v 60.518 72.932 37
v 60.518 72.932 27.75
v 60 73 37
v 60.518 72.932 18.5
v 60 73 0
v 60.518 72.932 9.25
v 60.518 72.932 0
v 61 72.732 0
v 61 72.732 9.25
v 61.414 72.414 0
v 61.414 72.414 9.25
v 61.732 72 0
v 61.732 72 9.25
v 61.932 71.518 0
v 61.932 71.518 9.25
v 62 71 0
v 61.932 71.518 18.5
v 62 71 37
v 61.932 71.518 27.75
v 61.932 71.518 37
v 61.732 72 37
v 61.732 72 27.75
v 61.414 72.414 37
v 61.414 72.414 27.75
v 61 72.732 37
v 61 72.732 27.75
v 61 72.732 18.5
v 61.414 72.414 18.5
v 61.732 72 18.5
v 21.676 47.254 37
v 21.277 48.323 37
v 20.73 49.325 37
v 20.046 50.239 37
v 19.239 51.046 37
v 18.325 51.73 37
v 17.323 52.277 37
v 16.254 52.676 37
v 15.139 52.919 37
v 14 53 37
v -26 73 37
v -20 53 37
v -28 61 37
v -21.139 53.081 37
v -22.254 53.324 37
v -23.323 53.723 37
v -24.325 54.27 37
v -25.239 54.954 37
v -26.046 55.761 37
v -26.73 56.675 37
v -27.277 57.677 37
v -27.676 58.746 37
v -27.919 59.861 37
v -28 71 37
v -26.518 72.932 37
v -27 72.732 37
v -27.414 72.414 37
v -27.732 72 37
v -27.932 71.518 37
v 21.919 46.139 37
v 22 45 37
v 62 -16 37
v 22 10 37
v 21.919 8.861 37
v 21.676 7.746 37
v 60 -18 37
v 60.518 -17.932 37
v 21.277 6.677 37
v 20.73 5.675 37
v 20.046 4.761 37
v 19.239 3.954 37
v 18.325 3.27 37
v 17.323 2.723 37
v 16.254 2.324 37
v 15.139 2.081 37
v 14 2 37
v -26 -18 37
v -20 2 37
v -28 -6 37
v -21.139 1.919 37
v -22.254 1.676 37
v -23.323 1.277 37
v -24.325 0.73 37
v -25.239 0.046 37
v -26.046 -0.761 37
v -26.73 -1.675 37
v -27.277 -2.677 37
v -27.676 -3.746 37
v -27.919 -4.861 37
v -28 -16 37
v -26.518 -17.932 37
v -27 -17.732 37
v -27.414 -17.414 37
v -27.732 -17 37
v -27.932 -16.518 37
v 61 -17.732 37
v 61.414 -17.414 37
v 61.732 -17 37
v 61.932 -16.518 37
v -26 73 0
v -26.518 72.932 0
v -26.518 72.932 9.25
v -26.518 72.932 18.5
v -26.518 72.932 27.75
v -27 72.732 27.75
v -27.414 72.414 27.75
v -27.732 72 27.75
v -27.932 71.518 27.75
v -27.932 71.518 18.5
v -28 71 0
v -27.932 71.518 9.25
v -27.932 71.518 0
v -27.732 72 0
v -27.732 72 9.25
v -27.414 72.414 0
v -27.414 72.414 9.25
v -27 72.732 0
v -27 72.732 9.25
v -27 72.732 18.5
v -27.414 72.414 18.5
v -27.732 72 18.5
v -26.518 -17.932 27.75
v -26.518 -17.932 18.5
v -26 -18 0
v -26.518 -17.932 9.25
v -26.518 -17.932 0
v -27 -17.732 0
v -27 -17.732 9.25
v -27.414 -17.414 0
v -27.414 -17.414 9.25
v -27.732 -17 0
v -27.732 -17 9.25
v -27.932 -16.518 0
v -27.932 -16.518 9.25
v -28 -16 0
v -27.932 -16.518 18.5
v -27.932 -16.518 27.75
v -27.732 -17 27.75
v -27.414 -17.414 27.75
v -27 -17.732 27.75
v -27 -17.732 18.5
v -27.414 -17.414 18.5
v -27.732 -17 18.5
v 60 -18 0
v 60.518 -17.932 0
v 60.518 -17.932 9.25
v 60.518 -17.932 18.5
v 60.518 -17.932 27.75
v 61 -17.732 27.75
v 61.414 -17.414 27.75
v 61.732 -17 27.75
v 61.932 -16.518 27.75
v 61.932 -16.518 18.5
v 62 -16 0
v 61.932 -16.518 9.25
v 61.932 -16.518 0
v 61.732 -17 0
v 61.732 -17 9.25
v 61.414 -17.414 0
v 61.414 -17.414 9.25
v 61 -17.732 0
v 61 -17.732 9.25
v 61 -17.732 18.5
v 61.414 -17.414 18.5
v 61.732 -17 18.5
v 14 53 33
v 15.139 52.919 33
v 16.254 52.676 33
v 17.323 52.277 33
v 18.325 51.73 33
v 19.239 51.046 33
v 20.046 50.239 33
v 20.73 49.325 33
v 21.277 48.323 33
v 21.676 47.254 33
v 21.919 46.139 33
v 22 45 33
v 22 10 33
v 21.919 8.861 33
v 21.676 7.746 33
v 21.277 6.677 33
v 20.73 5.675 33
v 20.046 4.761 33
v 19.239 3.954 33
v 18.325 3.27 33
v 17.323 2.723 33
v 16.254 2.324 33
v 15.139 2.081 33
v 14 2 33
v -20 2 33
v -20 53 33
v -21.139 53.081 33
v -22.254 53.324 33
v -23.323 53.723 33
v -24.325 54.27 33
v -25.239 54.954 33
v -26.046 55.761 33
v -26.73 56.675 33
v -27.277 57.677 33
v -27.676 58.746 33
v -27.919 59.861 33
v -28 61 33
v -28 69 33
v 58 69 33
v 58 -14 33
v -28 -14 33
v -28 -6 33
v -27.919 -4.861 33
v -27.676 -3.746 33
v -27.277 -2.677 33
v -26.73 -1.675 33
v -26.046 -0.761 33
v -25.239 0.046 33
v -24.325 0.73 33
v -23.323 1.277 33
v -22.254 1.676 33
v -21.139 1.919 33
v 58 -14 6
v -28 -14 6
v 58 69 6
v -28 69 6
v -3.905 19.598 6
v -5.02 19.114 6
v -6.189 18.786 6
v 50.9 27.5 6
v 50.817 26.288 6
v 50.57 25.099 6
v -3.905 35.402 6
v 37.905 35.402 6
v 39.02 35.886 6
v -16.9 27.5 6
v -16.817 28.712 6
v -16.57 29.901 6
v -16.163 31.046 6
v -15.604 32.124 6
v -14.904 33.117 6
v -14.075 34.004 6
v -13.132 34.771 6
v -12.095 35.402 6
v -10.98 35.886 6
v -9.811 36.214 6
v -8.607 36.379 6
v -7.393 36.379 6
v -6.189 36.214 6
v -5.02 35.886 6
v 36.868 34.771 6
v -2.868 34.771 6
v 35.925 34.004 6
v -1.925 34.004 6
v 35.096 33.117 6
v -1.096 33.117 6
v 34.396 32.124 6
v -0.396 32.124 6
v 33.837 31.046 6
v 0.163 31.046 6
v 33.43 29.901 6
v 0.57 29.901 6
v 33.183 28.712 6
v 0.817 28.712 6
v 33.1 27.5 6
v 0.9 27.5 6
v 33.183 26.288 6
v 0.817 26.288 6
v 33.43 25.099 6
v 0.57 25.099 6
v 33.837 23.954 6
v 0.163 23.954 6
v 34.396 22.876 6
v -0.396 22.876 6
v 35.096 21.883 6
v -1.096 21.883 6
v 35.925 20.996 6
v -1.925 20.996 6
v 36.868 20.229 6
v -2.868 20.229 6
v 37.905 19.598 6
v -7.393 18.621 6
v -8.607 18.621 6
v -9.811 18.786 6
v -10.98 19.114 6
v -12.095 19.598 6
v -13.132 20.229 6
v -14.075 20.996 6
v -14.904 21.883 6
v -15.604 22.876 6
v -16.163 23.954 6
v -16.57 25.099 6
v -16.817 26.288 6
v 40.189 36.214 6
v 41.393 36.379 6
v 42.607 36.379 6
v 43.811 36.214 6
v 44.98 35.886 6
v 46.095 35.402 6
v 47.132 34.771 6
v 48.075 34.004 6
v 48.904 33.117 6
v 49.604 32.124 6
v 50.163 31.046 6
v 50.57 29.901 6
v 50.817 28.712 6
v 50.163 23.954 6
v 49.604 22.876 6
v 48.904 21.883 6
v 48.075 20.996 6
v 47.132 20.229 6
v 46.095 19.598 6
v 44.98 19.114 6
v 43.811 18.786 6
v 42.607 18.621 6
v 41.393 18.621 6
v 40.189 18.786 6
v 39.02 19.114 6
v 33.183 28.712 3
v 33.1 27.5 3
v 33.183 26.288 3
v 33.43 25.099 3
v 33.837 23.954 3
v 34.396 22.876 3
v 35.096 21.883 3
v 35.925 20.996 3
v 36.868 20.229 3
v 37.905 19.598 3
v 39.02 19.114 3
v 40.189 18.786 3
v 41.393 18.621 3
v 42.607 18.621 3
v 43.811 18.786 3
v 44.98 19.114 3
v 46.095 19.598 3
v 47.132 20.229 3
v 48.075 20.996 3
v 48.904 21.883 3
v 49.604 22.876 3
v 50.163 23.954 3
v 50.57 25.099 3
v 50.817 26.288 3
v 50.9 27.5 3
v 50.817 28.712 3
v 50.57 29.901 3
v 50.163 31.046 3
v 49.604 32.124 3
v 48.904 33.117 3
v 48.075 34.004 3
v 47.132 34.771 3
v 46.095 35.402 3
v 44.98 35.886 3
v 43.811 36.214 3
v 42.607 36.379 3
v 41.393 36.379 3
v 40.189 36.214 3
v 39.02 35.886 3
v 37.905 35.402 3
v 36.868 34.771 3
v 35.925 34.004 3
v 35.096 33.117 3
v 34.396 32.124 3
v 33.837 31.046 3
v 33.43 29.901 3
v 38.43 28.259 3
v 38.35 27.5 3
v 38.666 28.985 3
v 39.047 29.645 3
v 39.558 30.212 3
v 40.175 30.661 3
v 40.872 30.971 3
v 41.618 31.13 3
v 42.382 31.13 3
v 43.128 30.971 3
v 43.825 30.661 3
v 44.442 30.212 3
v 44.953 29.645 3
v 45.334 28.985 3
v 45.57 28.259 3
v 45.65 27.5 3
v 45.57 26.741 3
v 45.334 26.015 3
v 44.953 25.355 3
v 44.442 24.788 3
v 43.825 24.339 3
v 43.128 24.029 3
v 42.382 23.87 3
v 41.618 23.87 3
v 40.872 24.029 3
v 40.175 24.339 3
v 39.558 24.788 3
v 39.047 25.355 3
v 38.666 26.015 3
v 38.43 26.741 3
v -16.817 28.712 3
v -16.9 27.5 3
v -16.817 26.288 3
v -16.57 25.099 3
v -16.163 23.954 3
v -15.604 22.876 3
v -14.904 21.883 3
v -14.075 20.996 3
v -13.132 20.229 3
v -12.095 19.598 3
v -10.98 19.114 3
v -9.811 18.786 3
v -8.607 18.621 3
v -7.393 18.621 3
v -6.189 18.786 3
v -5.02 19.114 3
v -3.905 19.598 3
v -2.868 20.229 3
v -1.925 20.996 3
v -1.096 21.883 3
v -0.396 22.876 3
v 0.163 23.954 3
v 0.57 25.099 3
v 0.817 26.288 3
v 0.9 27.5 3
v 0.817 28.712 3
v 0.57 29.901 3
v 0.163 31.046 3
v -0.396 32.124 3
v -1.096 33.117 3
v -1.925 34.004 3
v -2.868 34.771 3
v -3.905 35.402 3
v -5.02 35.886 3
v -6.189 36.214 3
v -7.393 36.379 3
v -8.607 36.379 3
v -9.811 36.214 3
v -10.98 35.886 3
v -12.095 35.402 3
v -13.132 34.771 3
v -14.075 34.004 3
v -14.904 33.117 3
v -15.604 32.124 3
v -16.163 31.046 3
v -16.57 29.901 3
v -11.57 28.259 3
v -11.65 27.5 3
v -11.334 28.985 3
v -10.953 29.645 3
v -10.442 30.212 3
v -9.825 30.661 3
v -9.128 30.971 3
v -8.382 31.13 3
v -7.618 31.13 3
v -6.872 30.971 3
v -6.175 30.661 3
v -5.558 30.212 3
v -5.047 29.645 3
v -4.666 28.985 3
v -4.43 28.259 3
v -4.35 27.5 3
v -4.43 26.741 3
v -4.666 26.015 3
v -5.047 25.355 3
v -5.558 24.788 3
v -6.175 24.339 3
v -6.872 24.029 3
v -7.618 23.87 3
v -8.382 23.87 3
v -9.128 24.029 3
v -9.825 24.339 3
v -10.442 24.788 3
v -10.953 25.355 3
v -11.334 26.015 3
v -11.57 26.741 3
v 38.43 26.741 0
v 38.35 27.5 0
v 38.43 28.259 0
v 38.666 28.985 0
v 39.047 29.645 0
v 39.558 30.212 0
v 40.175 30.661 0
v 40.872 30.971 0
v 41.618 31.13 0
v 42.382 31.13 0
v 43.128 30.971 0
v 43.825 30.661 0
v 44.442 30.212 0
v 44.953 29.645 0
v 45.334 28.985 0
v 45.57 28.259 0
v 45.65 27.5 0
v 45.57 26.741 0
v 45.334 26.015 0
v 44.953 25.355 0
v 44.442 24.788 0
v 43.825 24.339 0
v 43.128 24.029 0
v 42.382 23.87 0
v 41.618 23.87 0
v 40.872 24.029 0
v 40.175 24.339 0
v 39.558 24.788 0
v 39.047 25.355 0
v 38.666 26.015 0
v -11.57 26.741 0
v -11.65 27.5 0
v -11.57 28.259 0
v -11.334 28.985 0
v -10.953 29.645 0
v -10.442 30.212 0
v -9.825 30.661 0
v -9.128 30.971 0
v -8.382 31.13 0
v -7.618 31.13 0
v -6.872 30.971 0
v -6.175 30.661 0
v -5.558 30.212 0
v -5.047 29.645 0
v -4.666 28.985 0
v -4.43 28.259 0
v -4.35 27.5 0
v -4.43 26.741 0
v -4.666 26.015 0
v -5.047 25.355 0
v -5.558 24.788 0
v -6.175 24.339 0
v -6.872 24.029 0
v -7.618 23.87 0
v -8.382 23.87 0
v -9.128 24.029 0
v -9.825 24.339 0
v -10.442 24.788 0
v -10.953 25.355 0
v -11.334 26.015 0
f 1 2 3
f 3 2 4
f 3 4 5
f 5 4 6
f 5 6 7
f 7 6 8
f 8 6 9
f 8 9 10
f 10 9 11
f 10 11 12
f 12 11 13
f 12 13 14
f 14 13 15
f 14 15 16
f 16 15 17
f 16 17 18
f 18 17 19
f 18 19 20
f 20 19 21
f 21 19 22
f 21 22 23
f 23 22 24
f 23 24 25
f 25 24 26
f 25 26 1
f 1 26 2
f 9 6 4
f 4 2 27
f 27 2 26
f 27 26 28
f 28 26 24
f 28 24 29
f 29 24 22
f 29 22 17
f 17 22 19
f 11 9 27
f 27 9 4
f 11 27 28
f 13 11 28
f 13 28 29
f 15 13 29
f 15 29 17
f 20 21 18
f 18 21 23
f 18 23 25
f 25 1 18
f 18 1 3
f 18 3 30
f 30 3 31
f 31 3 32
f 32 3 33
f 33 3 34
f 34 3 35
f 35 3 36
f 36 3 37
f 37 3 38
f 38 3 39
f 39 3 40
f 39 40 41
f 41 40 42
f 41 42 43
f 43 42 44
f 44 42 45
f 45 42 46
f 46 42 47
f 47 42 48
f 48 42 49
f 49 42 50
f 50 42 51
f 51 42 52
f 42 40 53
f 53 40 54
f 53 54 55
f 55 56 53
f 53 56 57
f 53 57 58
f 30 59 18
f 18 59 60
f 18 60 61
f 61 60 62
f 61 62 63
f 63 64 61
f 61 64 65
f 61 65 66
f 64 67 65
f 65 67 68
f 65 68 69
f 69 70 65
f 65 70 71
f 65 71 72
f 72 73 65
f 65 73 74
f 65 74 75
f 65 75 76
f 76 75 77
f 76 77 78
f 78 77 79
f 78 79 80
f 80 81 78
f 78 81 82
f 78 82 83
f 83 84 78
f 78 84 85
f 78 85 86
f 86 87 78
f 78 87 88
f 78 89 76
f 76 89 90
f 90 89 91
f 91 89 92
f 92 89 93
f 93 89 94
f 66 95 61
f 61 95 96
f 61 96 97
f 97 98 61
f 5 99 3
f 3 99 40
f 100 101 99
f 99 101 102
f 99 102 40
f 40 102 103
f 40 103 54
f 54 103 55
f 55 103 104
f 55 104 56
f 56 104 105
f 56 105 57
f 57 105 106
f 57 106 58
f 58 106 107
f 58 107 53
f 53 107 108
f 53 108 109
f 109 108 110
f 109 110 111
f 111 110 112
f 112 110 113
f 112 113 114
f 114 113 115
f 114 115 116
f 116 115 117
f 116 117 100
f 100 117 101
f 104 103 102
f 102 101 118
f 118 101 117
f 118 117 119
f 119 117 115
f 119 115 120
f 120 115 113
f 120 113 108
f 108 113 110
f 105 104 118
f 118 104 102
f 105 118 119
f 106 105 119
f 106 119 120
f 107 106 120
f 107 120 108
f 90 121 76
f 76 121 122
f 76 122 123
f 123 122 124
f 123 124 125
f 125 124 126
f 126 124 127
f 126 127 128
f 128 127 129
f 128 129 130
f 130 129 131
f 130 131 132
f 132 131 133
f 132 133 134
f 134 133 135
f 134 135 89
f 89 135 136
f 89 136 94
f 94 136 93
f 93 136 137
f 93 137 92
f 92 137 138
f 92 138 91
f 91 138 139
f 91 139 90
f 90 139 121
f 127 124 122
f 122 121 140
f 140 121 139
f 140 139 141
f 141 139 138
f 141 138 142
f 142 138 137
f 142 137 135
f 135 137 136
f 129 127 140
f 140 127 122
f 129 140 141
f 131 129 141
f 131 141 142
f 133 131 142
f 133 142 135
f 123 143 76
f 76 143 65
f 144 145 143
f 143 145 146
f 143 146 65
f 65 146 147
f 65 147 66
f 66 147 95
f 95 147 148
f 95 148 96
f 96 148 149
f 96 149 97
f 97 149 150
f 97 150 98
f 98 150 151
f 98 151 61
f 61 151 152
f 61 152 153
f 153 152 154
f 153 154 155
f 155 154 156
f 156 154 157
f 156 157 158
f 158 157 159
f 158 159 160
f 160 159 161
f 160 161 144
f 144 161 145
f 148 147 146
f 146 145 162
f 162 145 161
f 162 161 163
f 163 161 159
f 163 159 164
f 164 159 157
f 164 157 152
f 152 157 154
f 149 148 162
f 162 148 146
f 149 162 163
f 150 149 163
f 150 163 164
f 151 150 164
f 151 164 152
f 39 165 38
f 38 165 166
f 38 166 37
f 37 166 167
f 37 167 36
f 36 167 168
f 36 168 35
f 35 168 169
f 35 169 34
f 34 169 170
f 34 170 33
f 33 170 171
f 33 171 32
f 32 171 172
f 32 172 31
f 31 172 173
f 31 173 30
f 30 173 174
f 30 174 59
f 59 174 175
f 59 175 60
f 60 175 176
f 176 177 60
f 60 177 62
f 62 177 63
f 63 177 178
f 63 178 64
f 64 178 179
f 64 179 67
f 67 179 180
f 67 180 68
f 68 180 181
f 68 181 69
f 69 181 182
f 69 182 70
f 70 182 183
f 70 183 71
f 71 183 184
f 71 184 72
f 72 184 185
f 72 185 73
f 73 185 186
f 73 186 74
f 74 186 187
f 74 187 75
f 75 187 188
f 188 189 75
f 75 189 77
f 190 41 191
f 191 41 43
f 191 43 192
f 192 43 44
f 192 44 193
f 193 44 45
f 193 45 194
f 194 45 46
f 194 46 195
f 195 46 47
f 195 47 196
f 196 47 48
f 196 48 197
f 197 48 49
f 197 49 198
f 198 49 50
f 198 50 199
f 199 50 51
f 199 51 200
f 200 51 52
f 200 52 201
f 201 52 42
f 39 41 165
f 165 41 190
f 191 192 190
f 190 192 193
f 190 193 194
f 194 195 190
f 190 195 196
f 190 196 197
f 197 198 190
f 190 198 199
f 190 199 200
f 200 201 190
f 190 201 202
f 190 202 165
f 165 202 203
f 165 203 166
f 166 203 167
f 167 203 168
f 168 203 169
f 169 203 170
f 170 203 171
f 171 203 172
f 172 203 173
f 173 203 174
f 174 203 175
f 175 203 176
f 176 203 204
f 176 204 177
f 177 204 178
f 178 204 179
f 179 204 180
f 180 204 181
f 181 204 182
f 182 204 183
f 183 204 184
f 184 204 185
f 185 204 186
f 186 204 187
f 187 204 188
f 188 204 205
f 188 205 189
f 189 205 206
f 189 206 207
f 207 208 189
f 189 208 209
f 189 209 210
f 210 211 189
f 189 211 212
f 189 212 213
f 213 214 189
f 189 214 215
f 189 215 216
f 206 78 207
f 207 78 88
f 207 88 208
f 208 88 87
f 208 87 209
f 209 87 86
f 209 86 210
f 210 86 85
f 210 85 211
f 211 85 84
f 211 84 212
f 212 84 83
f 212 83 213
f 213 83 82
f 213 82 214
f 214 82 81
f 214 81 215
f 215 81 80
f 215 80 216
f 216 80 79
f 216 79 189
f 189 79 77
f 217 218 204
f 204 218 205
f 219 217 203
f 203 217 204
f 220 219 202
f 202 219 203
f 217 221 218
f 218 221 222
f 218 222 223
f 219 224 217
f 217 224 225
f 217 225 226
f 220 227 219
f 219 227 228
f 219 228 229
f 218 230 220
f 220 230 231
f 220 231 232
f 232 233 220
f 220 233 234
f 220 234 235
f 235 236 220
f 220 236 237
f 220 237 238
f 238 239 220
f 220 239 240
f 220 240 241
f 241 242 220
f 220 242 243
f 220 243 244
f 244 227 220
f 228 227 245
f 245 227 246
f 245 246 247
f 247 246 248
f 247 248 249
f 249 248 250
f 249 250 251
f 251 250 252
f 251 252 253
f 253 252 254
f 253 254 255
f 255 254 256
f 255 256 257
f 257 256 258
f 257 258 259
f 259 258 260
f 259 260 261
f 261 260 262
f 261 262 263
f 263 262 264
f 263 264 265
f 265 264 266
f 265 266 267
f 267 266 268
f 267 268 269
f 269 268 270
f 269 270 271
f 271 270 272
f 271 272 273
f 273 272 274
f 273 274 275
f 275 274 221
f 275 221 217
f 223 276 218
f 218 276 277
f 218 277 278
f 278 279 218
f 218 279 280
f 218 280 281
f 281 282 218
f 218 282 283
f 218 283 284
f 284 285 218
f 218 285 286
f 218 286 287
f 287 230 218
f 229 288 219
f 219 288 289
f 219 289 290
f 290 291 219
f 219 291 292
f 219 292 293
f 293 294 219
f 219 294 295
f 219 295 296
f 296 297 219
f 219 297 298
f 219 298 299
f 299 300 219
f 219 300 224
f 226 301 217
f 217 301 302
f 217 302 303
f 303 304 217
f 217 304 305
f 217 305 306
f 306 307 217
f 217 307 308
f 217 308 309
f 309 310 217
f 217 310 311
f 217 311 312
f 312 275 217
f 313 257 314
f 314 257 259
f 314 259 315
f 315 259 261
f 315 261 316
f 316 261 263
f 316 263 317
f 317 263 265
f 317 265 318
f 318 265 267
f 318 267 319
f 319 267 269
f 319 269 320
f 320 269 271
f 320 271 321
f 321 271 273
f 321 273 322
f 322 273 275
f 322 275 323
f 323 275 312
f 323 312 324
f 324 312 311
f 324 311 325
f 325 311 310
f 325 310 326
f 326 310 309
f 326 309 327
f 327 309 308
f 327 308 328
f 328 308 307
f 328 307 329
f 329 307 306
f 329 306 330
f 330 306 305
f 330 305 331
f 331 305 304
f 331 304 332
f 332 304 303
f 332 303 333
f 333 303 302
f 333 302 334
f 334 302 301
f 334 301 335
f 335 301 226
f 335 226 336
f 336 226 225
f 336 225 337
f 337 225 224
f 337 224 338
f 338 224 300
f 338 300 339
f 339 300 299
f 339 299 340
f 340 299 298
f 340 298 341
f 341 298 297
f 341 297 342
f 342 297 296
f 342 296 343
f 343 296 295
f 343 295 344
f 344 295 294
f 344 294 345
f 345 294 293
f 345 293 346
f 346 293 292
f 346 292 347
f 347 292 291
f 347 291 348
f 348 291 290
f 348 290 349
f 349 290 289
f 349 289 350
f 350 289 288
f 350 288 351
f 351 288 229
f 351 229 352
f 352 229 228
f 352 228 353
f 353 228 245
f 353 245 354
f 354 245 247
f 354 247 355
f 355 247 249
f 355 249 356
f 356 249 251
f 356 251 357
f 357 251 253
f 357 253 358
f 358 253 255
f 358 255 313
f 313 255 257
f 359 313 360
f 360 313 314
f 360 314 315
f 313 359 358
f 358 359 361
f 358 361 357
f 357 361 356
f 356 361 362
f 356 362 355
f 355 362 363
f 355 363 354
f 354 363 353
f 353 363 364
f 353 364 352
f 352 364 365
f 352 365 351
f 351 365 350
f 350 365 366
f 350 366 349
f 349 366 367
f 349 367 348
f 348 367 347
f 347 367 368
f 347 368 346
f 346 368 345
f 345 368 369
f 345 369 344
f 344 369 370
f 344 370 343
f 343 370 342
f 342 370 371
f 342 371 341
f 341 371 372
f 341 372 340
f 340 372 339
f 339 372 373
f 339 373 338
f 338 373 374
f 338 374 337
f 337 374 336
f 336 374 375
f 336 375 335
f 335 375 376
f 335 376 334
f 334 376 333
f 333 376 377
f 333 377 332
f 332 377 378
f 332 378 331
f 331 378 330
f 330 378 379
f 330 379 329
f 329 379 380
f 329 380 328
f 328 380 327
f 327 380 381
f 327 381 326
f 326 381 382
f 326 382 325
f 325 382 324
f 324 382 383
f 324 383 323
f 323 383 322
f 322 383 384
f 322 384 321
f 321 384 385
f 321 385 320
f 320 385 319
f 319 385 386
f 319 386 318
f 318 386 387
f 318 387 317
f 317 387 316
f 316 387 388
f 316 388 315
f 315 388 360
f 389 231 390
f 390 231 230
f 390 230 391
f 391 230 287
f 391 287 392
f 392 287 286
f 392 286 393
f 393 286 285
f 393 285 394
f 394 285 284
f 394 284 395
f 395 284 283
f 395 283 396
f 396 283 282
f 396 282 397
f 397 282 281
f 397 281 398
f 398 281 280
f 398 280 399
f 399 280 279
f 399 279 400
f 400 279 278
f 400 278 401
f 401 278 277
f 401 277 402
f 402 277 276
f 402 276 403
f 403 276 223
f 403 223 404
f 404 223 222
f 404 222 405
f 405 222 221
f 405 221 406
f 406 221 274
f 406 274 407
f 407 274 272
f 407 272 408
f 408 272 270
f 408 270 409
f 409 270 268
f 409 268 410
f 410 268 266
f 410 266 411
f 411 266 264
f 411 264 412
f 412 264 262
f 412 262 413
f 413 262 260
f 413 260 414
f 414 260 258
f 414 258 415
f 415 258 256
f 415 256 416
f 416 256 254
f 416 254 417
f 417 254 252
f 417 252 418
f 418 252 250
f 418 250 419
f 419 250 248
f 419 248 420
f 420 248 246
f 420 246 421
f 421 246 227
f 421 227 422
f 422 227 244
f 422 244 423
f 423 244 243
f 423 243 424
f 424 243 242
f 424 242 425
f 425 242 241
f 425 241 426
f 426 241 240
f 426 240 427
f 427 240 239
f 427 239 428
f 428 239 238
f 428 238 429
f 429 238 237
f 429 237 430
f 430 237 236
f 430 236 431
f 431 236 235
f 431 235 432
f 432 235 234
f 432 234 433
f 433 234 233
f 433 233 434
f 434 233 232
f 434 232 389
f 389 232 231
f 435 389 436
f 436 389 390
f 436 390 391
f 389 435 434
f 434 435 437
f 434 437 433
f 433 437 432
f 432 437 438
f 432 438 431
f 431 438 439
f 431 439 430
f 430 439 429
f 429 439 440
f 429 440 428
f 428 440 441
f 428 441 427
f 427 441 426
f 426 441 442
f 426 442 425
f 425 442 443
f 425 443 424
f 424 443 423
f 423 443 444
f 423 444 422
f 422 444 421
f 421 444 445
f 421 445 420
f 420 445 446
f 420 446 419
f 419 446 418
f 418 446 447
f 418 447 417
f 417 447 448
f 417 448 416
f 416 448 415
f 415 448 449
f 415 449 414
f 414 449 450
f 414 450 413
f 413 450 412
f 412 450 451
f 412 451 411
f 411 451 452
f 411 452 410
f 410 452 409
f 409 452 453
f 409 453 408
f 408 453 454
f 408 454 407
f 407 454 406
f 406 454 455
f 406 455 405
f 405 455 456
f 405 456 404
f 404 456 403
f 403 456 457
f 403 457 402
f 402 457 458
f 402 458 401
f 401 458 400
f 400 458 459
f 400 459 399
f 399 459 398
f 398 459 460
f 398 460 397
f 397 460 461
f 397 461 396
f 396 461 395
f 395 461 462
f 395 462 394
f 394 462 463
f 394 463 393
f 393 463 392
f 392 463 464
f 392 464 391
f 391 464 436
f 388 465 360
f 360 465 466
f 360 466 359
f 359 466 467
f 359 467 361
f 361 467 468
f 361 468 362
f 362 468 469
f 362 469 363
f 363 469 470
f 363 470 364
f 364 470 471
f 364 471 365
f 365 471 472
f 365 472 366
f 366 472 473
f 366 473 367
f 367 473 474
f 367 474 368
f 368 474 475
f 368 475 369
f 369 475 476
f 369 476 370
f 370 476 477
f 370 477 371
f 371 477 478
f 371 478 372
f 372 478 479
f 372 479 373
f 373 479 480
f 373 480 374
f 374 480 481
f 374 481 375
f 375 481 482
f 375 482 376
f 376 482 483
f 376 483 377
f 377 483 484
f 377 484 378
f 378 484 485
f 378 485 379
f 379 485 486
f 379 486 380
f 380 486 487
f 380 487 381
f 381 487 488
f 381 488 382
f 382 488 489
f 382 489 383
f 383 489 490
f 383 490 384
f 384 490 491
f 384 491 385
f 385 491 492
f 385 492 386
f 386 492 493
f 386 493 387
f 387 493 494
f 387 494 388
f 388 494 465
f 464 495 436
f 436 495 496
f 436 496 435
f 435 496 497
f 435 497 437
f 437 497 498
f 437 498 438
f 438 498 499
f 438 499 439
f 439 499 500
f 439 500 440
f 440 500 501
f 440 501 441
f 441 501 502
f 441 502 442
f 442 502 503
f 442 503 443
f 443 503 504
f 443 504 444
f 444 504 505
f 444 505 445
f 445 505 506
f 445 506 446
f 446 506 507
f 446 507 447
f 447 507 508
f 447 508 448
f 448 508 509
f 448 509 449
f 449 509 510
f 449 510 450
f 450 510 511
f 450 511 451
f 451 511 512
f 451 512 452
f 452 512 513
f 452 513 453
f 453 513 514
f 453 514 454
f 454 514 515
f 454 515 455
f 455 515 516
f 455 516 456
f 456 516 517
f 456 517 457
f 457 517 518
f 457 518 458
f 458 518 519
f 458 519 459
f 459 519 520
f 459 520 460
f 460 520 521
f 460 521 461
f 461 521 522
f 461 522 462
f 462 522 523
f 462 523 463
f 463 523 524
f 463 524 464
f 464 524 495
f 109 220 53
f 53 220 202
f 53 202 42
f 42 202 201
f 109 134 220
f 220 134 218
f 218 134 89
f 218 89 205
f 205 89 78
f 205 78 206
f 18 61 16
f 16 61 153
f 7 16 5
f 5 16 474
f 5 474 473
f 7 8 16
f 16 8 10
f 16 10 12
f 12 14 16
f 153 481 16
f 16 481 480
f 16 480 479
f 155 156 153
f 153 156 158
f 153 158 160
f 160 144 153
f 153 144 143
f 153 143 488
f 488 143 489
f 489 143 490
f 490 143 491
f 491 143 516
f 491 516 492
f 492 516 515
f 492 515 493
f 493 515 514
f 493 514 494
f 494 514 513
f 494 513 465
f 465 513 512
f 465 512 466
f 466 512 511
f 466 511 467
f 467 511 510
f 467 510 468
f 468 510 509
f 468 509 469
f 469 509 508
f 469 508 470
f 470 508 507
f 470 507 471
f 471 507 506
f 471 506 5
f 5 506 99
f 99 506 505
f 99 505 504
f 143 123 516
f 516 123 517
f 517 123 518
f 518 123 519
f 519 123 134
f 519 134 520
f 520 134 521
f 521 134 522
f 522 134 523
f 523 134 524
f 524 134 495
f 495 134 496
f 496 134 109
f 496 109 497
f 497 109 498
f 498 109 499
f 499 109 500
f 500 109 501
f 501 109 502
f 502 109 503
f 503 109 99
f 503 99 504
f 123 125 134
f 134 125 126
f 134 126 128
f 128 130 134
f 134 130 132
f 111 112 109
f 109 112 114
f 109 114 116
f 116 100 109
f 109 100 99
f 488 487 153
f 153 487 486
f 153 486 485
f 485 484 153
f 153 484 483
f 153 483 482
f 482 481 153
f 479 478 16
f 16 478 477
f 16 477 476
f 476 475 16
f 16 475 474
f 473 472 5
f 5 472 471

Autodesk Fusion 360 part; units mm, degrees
sketch "Sketch1" plane through (0, 0, 0) normal (0, 0, 1) x (1, 0, 0)
  line L0 (-28, 37) -> (62, 37)
  line L1 (62, 37) -> (62, 18)
  line L2 (62, 18) -> (-28, 18)
  line L3 (-28, 18) -> (-28, 37)
  dimension "d1" = 90
  dimension "d2" = 19
extrude "Extrude1" add sketch "Sketch1" along normal blind 6
sketch "Sketch2" plane through (0, 0, 6) normal (0, 0, 1) x (-1, 0, 0)
  line L0 (28, -37) -> (28, -18)
  line L1 (28, -18) -> (-62, -18)
  line L2 (-62, -18) -> (-62, -37)
  line L3 (-62, -37) -> (28, -37)
ref_plane "WorkPlane1" through (17, 27.5, 6) normal (0, 0, 1) x (-1, 0, 0)
sketch "Sketch3" plane through (0, 0, 6) normal (0, 0, 1) x (1, 0, 0)
  line L0 (17, 37) -> (17, 18)
  circle A0 centre (-8, 27.5) radius 8.9
  circle A1 centre (42, 27.5) radius 8.9
  circle A2 centre (-8, 27.5) radius 3.65
  circle A3 centre (42, 27.5) radius 3.65
  dimension "d13" = 17.8
  dimension "d14" = 17.8
  dimension "d15" = 7.3
  dimension "d16" = 7.3
extrude "Extrude2" cut sketch "Sketch3" against normal blind 7 contours A2 | A3
extrude "Extrude3" cut sketch "Sketch3" against normal blind 3
sketch "Sketch4" plane through (0, 0, 0) normal (0, 0, 1) x (1, 0, 0)
  line L0 (-21, 37) -> (55, 37)
  line L1 (55, 37) -> (55, 39)
  line L2 (55, 39) -> (-21, 39)
  line L3 (-21, 39) -> (-21, 37)
  dimension "d21" = 76
  dimension "d22" = 2
sketch "Sketch7" plane through (0, 0, 6) normal (0, 0, 1) x (-1, 0, 0)
  circle A0 centre (-42, -27.5) radius 8.9
  circle A1 centre (8, -27.5) radius 8.9
  line L0 (28, -18) -> (-62, -18)
  line L1 (-62, -18) -> (-62, -37)
  line L2 (-62, -37) -> (28, -37)
  line L3 (28, -37) -> (28, -18)
  line L4 (28, -37) -> (-62, -37)
  line L5 (-62, -37) -> (-62, -73)
  line L6 (-62, -73) -> (28, -73)
  line L7 (28, -73) -> (28, -37)
  dimension "d37" = 90
  dimension "d38" = 36
extrude "Extrude7" add sketch "Sketch7" against normal blind 6 contours L2 L4 L5 L6 L7
sketch "Sketch8" plane through (0, 0, 6) normal (0, 0, 1) x (-1, 0, 0)
  circle A0 centre (-42, -27.5) radius 8.9
  circle A1 centre (8, -27.5) radius 8.9
  line L0 (28, -18) -> (-62, -18)
  line L1 (-62, -18) -> (-62, -73)
  line L2 (-62, -73) -> (28, -73)
  line L3 (28, -73) -> (28, -18)
  line L4 (-62, -18) -> (28, -18)
  line L5 (28, -18) -> (28, 18)
  line L6 (28, 18) -> (-62, 18)
  line L7 (-62, 18) -> (-62, -18)
  dimension "d41" = 90
  dimension "d42" = 36
extrude "Extrude8" add sketch "Sketch8" against normal blind 6 contours L0 L4 L5 L6 L7
ref_plane "WorkPlane3" through (17, 27.5, 6) normal (0, 0, 1) x (1, 0, 0)
sketch "Sketch9" plane through (0, 0, 6) normal (0, 0, 1) x (1, 0, 0)
  line L0 (62, -18) -> (-28, -18)
  line L1 (-28, -18) -> (-28, -14)
  line L2 (-28, -14) -> (62, -14)
  line L3 (62, -14) -> (62, -18)
  line L4 (62, 73) -> (-28, 73)
  line L5 (-28, 73) -> (-28, 69)
  line L6 (-28, 69) -> (62, 69)
  line L7 (62, 69) -> (62, 73)
  line L8 (62, -14) -> (62, -14)
  line L9 (62, 69) -> (62, 69)
  line L10 (62, -14) -> (58, -14)
  line L11 (58, -14) -> (58, 69)
  line L12 (58, 69) -> (62, 69)
  line L13 (62, 69) -> (62, -14)
  dimension "d46" = 90
  dimension "d47" = 4
  dimension "d48" = 90
  dimension "d49" = 4
  dimension "d50" = 83
extrude "Extrude9" add sketch "Sketch9" along normal blind 27
ref_plane "WorkPlane4" through (17, 27.5, 33) normal (0, 0, 1) x (1, 0, 0)
sketch "Sketch10" plane through (0, 0, 33) normal (0, 0, 1) x (1, 0, 0)
  line L0 (62, -18) -> (22, -18)
  line L1 (22, -18) -> (22, 73)
  line L2 (22, 73) -> (62, 73)
  line L3 (62, 73) -> (62, -18)
  line L4 (62, -18) -> (-28, -18)
  line L5 (-28, -18) -> (-28, 2)
  line L6 (-28, 2) -> (62, 2)
  line L7 (62, 2) -> (62, -18)
  line L8 (62, 73) -> (-28, 73)
  line L9 (-28, 73) -> (-28, 53)
  line L10 (-28, 53) -> (62, 53)
  line L11 (62, 53) -> (62, 73)
  dimension "d54" = 40
  dimension "d55" = 91
  dimension "d56" = 90
  dimension "d57" = 20
  dimension "d58" = 90
  dimension "d59" = 20
extrude "Extrude10" add sketch "Sketch10" along normal blind 4
fillet "Fillet3" radius 8 2 edges at (-28, 2, 35) (-28, 53, 35)
fillet "Fillet4" radius 8 1 edges at (22, 2, 35)
fillet "Fillet5" radius 8 1 edges at (22, 53, 35)
fillet "Fillet6" radius 2 2 edges at (62, -18, 18.5) (-28, -18, 18.5)
fillet "Fillet7" radius 2 7 edges at (-28, 73, 16.5) (-28, 73, 35) (-28, 73, 16.5) (-28, 73, 35) (62, 73, 16.5) (62, 73, 35) (62, 73, 16.5)
